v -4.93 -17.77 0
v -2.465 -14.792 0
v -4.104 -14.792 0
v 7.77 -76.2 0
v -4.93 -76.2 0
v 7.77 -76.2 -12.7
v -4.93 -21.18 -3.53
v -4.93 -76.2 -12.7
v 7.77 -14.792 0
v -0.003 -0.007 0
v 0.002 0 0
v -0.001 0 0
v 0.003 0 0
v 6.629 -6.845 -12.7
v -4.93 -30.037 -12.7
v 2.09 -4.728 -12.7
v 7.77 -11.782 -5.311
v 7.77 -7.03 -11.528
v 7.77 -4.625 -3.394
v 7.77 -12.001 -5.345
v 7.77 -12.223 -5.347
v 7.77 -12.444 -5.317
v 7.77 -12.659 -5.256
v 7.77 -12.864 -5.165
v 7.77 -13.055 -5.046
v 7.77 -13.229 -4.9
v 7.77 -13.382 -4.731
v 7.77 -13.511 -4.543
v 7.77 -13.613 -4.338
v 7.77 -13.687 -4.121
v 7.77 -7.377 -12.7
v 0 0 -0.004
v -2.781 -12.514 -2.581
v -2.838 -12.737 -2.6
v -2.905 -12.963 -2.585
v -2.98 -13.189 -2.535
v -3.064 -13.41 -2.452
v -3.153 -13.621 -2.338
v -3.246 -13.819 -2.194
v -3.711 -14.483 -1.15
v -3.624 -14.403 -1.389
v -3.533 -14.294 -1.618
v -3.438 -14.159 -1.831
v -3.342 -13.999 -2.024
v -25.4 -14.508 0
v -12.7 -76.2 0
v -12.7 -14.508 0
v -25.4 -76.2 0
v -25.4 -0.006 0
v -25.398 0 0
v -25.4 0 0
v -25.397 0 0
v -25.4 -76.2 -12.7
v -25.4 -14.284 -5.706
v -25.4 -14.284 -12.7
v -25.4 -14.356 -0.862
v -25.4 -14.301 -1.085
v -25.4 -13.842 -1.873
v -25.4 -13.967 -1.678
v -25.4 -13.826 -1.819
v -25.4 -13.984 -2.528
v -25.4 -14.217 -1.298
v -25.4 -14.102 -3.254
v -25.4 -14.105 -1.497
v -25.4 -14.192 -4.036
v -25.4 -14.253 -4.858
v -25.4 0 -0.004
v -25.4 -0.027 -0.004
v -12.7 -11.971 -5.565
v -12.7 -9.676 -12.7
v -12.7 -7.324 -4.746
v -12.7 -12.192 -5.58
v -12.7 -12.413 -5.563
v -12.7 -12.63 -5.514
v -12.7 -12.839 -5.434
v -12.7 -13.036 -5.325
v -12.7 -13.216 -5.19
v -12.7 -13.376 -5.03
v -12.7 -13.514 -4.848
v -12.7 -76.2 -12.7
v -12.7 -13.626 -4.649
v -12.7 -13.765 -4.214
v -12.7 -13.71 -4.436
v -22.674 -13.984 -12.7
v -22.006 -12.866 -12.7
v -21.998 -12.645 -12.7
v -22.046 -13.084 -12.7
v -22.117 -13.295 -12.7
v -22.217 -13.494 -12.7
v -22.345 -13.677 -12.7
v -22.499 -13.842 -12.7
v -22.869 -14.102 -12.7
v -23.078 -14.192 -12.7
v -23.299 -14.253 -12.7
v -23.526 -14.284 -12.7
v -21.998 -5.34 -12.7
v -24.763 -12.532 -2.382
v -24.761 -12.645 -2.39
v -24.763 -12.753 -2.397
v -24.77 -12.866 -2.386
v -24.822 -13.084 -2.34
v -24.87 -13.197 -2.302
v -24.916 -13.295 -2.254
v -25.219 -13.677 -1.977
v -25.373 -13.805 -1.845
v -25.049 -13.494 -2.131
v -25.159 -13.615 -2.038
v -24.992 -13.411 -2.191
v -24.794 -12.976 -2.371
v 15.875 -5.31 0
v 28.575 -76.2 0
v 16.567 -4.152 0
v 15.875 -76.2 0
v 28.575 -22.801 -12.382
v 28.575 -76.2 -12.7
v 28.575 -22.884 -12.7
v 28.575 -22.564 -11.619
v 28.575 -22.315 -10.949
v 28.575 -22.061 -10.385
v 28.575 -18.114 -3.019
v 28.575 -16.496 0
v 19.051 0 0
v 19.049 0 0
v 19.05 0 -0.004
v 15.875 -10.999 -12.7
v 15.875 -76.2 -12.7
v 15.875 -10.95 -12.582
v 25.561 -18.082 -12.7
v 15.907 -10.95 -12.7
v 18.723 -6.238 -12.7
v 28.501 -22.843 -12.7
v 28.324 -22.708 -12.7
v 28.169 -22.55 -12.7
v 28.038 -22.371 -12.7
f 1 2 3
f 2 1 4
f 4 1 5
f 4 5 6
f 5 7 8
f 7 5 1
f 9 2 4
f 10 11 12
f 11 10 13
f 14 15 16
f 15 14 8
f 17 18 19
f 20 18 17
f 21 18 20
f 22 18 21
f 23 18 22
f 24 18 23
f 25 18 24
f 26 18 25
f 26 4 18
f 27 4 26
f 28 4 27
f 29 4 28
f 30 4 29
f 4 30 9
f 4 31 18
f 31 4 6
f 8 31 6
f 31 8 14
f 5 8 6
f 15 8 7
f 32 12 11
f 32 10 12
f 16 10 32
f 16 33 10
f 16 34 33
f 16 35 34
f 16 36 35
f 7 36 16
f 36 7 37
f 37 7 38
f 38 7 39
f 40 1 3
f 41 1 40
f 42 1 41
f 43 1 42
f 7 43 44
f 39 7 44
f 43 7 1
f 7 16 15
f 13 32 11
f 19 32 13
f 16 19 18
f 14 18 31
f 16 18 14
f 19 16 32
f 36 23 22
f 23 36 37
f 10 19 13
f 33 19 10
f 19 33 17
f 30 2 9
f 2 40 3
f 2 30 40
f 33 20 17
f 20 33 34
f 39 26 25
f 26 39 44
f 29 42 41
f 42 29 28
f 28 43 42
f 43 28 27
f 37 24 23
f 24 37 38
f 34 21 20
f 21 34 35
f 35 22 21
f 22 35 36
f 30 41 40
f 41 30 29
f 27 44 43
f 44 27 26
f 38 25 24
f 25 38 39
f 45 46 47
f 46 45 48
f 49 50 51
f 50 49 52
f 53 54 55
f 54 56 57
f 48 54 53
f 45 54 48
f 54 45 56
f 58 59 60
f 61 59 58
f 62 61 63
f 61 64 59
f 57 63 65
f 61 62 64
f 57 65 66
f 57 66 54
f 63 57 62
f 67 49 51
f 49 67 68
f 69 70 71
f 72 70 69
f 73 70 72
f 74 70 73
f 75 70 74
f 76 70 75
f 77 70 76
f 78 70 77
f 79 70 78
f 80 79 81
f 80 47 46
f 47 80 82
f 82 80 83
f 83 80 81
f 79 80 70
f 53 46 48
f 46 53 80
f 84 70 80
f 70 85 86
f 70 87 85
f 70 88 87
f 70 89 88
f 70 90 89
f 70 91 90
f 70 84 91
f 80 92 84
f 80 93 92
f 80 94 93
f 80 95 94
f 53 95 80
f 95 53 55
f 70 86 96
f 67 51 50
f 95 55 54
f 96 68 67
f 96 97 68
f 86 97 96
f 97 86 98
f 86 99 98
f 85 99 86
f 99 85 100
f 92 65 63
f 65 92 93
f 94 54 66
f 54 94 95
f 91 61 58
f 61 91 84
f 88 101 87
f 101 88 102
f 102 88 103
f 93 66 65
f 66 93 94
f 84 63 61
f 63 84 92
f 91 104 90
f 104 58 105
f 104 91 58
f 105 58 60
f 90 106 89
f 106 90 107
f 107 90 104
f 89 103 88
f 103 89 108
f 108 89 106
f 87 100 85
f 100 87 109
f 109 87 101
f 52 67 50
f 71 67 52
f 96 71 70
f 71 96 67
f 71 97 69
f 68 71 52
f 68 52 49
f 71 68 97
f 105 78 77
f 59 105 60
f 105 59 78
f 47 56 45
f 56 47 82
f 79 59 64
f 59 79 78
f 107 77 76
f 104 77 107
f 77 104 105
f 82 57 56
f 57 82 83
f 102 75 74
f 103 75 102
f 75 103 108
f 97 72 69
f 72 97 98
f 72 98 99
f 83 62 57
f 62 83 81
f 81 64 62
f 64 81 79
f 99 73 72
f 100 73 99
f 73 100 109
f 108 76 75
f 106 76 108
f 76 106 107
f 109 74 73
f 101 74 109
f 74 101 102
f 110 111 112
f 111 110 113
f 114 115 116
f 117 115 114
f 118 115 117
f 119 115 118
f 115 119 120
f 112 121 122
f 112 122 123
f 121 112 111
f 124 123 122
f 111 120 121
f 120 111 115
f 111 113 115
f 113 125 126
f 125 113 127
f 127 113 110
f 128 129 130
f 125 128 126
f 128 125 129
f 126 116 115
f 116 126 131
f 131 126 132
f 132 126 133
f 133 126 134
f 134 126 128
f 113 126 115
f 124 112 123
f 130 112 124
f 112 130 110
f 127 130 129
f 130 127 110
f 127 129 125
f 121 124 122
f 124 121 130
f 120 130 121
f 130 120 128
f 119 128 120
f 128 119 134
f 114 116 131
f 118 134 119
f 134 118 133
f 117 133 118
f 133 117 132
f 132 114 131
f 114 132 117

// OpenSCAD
// Copyright 2019 Michael K Johnson
// Use allowed under Attribution 4.0 International (CC BY 4.0) license terms
// https://creativecommons.org/licenses/by/4.0/legalcode
// Model of Mikey's Square, Knife, and Threading Tools
// https://www.hobby-machinist.com/threads/models-for-grinding-hss-lathe-tools.62111/
// Scale 200-500% for printing, reducing length, to see closely
// All parameters are in inches, because that's common use
// https://me-mechanicalengineering.com/single-point-cutting-tool/ has definitions

// Stock is assumed to be square in cross section
stock_width = 0.5;
// Typical stock is 3-6 inches long; can reduce to print enlarged models to concentrate on shape of tip
stock_len = 3;
// To model the curve from the wheel; 6" and 8" are common
wheel_diameter = 8;
// Wheel or platen thickness; matters only if using this for visualizations
wheel_thickness = 1;
// Radius of the edge of the wheel/platen; shows at back edge of top cut
wheel_edge_radius = .0625;
// Common radii are .0156 (1/64") .03125 (1/32") .0625 (1/16") (Nose radius currently ignored)
nose_radius = .03125;
knife_nose_radius = 0.156;
// Side Cutting Edge Angle (SCEA)
side_cutting_edge_angle = 15;
// End Cutting Edge Angle (ECEA) is derived from the included angle of the tip, and is normally less than 90
tip_included_angle = 80;
knife_tip_included_angle = 65;
threading_tip_included_angle = 60;
// Back Rake (BR) 
back_rake_angle = 15;
// Back Rake depth ratio (depth of back rake relative to stock width; reduce for high BR)
back_rake_depth_ratio = 1;
// Knife Back Rake (BR) (knife tool)
knife_back_rake_angle = 10;
// Side Rake (SR)
side_rake_angle = 15;
// Side Relief
side_relief_angle = 15;
// End Relief ("Clearance")
end_relief_angle = 15;
// How far back the top of the tool the side cut extends, relative to the width of the stock; typically between 1 and 2
side_edge_aspect_ratio = 1.5;
threading_side_edge_aspect_ratio = 0.5;
// use_platen: true for belt grinder platen, false for wheel grinder
use_platen = true;

/* [Hidden] */

// true to use simple shapes for fast rendering while developing; false for more accurate shapes for final renders
fast_render = false;

function mm(inches) = inches * 25.4;

stock_w = mm(stock_width);
stock_l = mm(stock_len);
wheel_r = mm(wheel_diameter) / 2;
wheel_t = mm(wheel_thickness);
wheel_e_r = mm(wheel_edge_radius);
nose_r = mm(nose_radius);
knife_nose_r = mm(knife_nose_radius);

// Logical pre-rounded tip located at -pivot_offset
function pivot_offset(scea=side_cutting_edge_angle, sear=side_edge_aspect_ratio) = -mm(sear * stock_width) * sin(scea);

module smooth_wheel(r=wheel_r, t=wheel_t) {
    x = t/2 - wheel_e_r;
    y = r - mm(0.5);
    translate([0, r, 0])
    rotate([0, 90, 0])
    rotate_extrude($fa=1)
    rotate([0, 0, 90])
    translate([0, -(r-wheel_e_r), 0])
    hull() {
        translate([x, 0, 0]) circle(r=wheel_e_r, $fn=45);
        translate([-x, 0, 0]) circle(r=wheel_e_r, $fn=45);
        translate([x, y, 0]) circle(r=wheel_e_r, $fn=45);
        translate([-x, y, 0]) circle(r=wheel_e_r, $fn=45);
    }
}
module wheel(r=wheel_r, t=wheel_t) {
    z = -stock_w/2; // honed angles at edges will be as set
    // simple cylinder
    if (fast_render) {
        translate([-t/2, r, z]) rotate([90, 0, 90])
        cylinder(r=r, h=t, $fa=1);
    } else {
        smooth_wheel(r, t);
    }
}
module platen(h=wheel_r, t=wheel_t, d=wheel_t) {
    hull() {
        // front of platen
        translate([t/2, wheel_e_r, -h/2])
            cylinder(r=wheel_e_r, h=h, $fn=45);
        translate([-t/2, wheel_e_r, -h/2])
            cylinder(r=wheel_e_r, h=h, $fn=45);
        // extend it back to represent what will be cut out
        translate([t/2, d, -h/2])
            cylinder(r=wheel_e_r, h=h, $fn=45);
        translate([-t/2, d, -h/2])
            cylinder(r=wheel_e_r, h=h, $fn=45);
    }
}
module surface(t=wheel_t) {
    if (use_platen) {
        platen(t=t, d=t);
    } else {
        wheel(t=t);
    }
}
module stock(w=stock_w, l=stock_l, scea=side_cutting_edge_angle, sear=side_edge_aspect_ratio) {
    // origin is pivot point for cuts, oriented to be like using a wheel
    translate([pivot_offset(scea=scea, sear=sear), -l, -w])
        cube([w, l, w]);
}
function side_cut_z(scea=side_cutting_edge_angle) = 90-scea;
function side_cut_t(br=back_rake_angle, era=end_relief_angle, sra=side_relief_angle, scea=side_cutting_edge_angle, sear=side_edge_aspect_ratio) = (scea*sra*era*br == 0) ? wheel_t : ((-pivot_offset(scea=scea, sear=sear))+(tan(sra)*stock_w)+(tan(era)*stock_w)+(tan(br)*stock_w)/sin(scea) + wheel_e_r*4) * 2;
module inner_side_cut(br=back_rake_angle, era=end_relief_angle, sra=side_relief_angle, scea=side_cutting_edge_angle, sear=side_edge_aspect_ratio) {
    z = side_cut_z(scea=scea);
    t = side_cut_t(br=br, era=era, sra=sra, scea=scea, sear=sear);
    difference() {
        rotate([0, 0, -z])
        rotate([0, sra, 0])
            stock(scea=scea, sear=sear);
        surface(t=t);
    }
}
module side_cut(br=back_rake_angle, era=end_relief_angle, sra=side_relief_angle, scea=side_cutting_edge_angle, sear=side_edge_aspect_ratio) {
    z = side_cut_z(scea=scea);
    rotate([0, -sra, 0])
    rotate([0, 0, z])
    inner_side_cut(br=br, era=era, sra=sra, scea=scea, sear=sear);
}
function end_cut_z(tia=tip_included_angle, scea=side_cutting_edge_angle) = (90-tia)+scea;
module inner_end_cut(tia=tip_included_angle, br=back_rake_angle, era=end_relief_angle, sra=side_relief_angle, scea=side_cutting_edge_angle, sear=side_edge_aspect_ratio) {
    z = end_cut_z(tia=tia, scea=scea);
    difference() {
        rotate([era, 0, 0])
        rotate([0, 0, z])
            side_cut(br=br, era=era, sra=sra, scea=scea, sear=sear);
        translate([wheel_t/2-wheel_e_r, 0, 0]) surface();
    }
}
module end_cut(tia=tip_included_angle, br=back_rake_angle, era=end_relief_angle, sra=side_relief_angle, scea=side_cutting_edge_angle, sear=side_edge_aspect_ratio) {
    z = end_cut_z(tia=tia, scea=scea);
    rotate([0, 0, -z])
    rotate([-era, 0, 0])
    inner_end_cut(tia=tia, br=br, era=era, sra=sra, scea=scea, sear=sear);
}
module nose_radius(nr=nose_r, tia=tip_included_angle, br=back_rake_angle, era=end_relief_angle, sre=side_relief_angle, scea=side_cutting_edge_angle, sear=side_edge_aspect_ratio) {
    // There is no chamfer function to follow the
    // the sharp edge with a clean curve
    // Should find a way to sufficiently approximate
    end_cut(tia=tia, br=br, era=era, sre=sra, scea=scea, sear=sear);
}
function top_cut_z(br=back_rake_angle) = 90 + br;
module inner_top_cut(br=back_rake_angle, brdr=back_rake_depth_ratio, nr=nose_r, tia=tip_included_angle, era=end_relief_angle, sra=side_relief_angle, scea=side_cutting_edge_angle, sear=side_edge_aspect_ratio, sr=side_rake_angle) {
    z = top_cut_z(br=br);
    difference() {
        rotate([sr, 0, 0])
        rotate([0, 0, z])
        rotate([0, 90, 0])
            nose_radius(nr=nr, tia=tia, br=br, era=era, sra=sra, scea=scea, sear=sear);
        surface(t=stock_w*2*brdr);
    }
}
module top_cut(br=back_rake_angle, brdr=back_rake_depth_ratio, nr=nose_r, tia=tip_included_angle, era=end_relief_angle, sra=side_relief_angle, scea=side_cutting_edge_angle, sear=side_edge_aspect_ratio, sr=side_rake_angle) {
    z = top_cut_z(br=br);
    rotate([0, -90, 0])
    rotate([0, 0, -z])
    rotate([-sr, 0, 0])
    inner_top_cut(br=br, brdr=brdr, nr=nr, tia=tia, era=era, sra=sra, scea=scea, sear=sear, sr=sr);
}
module square_tool(br=back_rake_angle, brdr=back_rake_depth_ratio, nr=nose_r, tia=tip_included_angle, era=end_relief_angle, sra=side_relief_angle, scea=side_cutting_edge_angle, sear=side_edge_aspect_ratio, sr=side_rake_angle) {
    top_cut(br=br, brdr=brdr, nr=nr, tia=tia, br=br, era=era, sra=sra, scea=scea, sear=sear, sr=sr);
}
module knife_tool(br=knife_back_rake_angle, brdr=back_rake_depth_ratio, nr=knife_nose_r, tia=knife_tip_included_angle, era=end_relief_angle, sra=side_relief_angle, scea=0, sear=0, sr=side_rake_angle) {
    top_cut(br=br, brdr=brdr, nr=nr, tia=tia, br=br, era=era, sra=sra, scea=scea, sear=sear, sr=sr);
}
module threading_tool(br=0, nr=0, tia=threading_tip_included_angle, era=end_relief_angle, sra=side_relief_angle, scea=threading_tip_included_angle/2, sear=threading_side_edge_aspect_ratio, sr=0) {
    // no top cut or nose radius
    end_cut(tia=tia, br=br, era=era, sra=sra, scea=scea, sear=sear, sr=sr);
}
module demo_set() {
    translate([0, 0, 0]) {
        translate([wheel_t*0.4, 0, 0]) inner_side_cut();
        platen(d=wheel_e_r);
    }
    translate([wheel_t*1.5, 0, 0]) {
        inner_end_cut();
        platen(d=wheel_e_r);
    }
    translate([wheel_t*3, 0, 0]) {
        inner_top_cut();
        platen(d=wheel_e_r);
    }
}
module standard_set() {
    square_tool();
    translate([-2*stock_w, 0, 0]) knife_tool();
    translate([1.5*stock_w, 0, 0]) threading_tool();
}
* demo_set();
standard_set();
// aluminum
* translate([-3*stock_w, 0, 0]) square_tool(br=40, brdr=0.4, sr=18);
// stainless
* translate([-4.5*stock_w, 0, 0]) square_tool(br=10, era=13, sr=25);
//square_tool();
//knife_tool();
//threading_tool();
